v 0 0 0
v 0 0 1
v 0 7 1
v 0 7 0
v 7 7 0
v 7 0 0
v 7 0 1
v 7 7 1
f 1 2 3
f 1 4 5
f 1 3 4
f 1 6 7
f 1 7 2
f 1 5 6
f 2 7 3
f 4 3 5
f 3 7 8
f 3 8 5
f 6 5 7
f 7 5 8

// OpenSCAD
/* Warning, this is a very basic generator with a lot of approximation 
input data : [TQFP, 3CB, 7x7x1.0mm, 32, , A, C04-21018A]
generated by com.zoubworld.electronics.cad.model3d.Basic
Date : Sun Feb 15 10:50:49 CET 2026
*/

//body
color("black")
translate([0,0,0])
cube([7.0,7.0,1.0], center=false);
